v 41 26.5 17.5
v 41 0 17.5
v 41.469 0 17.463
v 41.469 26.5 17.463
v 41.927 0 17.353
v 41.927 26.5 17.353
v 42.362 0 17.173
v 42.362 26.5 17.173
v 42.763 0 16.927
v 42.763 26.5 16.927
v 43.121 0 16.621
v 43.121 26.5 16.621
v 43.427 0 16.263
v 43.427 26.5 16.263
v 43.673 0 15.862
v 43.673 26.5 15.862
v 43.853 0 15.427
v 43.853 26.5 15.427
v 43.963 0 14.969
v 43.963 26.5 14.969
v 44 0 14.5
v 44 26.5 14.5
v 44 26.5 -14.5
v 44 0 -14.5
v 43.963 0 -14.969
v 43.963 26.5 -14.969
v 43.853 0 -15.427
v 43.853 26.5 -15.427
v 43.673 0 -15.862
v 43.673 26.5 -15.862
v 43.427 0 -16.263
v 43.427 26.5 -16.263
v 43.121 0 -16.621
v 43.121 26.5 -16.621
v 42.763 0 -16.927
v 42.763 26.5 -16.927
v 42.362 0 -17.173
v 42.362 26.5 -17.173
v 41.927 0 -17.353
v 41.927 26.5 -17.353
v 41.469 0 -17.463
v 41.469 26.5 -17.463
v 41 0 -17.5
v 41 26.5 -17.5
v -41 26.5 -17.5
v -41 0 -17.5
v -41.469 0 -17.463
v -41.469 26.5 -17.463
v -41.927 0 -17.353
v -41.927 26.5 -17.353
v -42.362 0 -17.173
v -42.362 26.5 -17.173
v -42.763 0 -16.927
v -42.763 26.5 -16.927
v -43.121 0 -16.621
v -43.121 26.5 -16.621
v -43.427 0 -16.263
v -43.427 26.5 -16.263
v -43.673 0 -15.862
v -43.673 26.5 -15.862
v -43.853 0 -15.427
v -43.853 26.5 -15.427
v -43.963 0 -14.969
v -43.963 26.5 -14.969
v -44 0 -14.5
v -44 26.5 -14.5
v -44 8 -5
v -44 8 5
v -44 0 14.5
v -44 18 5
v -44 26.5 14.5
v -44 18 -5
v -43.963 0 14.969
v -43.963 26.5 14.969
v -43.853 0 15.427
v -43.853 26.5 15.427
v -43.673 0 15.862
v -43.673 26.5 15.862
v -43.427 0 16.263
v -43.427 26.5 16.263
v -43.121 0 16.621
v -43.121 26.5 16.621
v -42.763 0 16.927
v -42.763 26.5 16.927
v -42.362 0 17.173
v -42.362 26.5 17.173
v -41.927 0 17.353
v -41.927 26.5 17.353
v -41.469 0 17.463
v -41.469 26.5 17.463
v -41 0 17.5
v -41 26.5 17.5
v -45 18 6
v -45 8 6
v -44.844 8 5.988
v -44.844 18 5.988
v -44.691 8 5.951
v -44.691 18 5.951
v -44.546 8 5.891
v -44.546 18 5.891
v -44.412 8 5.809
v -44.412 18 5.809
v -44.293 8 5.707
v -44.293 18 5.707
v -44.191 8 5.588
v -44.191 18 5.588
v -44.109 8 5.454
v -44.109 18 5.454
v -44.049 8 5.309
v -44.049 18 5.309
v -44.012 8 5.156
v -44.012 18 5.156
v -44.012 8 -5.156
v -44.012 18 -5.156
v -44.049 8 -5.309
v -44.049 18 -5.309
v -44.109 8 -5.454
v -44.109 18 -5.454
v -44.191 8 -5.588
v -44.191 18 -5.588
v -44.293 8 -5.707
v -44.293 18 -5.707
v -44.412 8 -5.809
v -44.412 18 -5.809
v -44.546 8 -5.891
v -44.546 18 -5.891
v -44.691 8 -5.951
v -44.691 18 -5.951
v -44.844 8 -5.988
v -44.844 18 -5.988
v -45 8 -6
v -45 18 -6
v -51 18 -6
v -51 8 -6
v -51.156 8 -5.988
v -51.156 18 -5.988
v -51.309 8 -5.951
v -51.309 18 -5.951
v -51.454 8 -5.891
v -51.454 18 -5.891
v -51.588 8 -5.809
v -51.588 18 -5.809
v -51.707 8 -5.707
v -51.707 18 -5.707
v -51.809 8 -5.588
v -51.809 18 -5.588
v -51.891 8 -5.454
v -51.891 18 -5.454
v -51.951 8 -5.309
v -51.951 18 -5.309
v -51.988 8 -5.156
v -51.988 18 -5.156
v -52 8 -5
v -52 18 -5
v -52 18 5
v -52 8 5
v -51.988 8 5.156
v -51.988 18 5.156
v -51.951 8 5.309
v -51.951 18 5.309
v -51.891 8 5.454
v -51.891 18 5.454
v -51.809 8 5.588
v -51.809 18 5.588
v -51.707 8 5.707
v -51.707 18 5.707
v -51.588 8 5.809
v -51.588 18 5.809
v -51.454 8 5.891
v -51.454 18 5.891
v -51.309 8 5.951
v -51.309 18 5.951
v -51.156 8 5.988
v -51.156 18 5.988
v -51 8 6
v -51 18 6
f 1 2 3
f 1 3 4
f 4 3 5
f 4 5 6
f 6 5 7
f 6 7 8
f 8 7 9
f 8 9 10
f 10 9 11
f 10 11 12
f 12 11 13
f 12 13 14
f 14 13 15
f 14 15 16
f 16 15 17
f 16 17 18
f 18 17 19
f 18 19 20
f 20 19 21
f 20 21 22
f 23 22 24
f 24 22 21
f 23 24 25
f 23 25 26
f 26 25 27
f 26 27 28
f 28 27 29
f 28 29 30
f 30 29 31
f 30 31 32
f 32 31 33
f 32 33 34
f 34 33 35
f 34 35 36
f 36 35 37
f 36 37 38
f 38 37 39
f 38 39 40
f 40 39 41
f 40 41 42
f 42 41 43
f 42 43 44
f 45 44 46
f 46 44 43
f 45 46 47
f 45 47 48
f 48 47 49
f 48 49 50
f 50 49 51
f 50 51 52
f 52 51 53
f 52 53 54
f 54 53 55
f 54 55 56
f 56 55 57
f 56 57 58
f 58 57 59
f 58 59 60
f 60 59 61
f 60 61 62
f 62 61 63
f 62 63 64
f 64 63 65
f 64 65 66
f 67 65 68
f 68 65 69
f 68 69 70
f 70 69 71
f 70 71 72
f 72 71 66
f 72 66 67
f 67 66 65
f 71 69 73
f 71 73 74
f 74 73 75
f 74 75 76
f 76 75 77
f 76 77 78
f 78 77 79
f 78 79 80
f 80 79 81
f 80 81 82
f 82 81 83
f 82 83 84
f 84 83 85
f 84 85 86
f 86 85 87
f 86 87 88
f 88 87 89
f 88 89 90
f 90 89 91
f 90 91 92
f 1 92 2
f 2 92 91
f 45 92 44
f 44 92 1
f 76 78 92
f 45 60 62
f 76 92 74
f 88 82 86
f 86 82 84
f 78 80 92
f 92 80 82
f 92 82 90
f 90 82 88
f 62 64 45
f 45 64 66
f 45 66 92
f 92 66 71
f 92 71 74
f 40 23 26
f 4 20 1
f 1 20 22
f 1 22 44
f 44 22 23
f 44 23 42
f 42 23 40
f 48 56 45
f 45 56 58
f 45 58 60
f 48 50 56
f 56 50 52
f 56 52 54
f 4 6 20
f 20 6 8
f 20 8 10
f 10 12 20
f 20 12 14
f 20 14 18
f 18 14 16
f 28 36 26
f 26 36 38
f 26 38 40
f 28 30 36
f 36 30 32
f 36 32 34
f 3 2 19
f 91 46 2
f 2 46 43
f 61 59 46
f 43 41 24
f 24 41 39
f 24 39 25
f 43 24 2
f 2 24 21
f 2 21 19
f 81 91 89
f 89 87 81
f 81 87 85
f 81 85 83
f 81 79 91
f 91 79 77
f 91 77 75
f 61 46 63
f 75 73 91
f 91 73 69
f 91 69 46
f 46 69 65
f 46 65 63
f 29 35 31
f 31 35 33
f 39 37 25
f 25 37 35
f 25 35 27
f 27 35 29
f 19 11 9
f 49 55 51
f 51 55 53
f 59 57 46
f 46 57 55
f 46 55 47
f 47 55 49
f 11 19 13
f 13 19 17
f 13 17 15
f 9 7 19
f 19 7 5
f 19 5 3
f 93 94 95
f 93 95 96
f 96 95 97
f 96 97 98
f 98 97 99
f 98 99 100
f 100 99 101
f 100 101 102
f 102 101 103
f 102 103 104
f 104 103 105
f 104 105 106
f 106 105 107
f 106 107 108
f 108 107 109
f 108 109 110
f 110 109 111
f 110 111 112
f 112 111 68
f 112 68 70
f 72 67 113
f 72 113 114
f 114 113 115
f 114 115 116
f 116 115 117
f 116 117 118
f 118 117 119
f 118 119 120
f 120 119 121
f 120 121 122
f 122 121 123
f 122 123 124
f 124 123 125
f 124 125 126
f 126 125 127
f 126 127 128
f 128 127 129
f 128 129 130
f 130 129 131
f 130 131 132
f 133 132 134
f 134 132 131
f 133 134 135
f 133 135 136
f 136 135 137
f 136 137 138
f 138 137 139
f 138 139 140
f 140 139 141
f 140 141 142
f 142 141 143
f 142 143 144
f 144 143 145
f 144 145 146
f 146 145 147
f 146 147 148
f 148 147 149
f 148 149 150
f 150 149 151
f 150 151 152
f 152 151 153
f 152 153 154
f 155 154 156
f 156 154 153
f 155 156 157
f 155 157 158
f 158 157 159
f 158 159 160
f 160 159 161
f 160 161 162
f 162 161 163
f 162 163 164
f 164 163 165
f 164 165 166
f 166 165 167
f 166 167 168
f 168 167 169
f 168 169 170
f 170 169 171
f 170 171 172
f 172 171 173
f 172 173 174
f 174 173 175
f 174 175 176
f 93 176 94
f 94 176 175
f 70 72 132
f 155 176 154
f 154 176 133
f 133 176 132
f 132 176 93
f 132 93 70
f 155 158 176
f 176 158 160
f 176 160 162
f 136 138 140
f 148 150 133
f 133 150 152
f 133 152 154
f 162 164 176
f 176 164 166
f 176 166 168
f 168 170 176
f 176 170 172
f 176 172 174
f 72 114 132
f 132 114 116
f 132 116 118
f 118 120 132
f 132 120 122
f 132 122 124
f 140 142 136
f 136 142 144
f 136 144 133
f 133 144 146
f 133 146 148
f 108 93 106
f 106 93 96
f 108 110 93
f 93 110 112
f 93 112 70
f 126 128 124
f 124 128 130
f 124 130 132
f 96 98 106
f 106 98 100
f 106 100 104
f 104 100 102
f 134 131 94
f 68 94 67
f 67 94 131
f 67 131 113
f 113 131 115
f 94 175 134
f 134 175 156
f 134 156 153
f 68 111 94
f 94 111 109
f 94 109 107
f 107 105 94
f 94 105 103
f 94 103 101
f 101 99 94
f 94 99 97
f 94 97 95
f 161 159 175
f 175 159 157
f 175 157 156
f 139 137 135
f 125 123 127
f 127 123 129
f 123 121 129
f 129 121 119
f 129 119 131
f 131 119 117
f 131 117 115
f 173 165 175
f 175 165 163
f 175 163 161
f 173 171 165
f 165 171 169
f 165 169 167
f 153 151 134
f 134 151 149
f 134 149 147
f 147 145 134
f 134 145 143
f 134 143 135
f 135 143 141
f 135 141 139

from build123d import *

# Parameters (mm, degrees)
CELL_PACK_DEPTH = 26.5
CONNECTOR_START = 8
CONNECTOR_DEPTH = 10


with BuildPart() as part:
    # SK_1 → Cell_Pack (new body)
    with BuildSketch(Plane(origin=(0, 0, 0), x_dir=(1, 0, 0), z_dir=(0, 1, 0))):
        with BuildLine():
            Line((-41, -17.5), (41, -17.5))
            ThreePointArc((41, -17.5), (43.121320344, -16.621320344), (44, -14.5))
            Line((44, -14.5), (44, 14.5))
            ThreePointArc((44, 14.5), (43.121320344, 16.621320344), (41, 17.5))
            Line((41, 17.5), (-41, 17.5))
            ThreePointArc((-41, 17.5), (-43.121320344, 16.621320344), (-44, 14.5))
            Line((-44, 14.5), (-44, -14.5))
            ThreePointArc((-44, -14.5), (-43.121320344, -16.621320344), (-41, -17.5))
        make_face()
    extrude(amount=CELL_PACK_DEPTH)

    # SK_2 → Connector (add)
    with BuildSketch(Plane(origin=(0, 0, 0), x_dir=(1, 0, 0), z_dir=(0, 1, 0)).offset(CONNECTOR_START)):
        with BuildLine():
            Line((-51, -6), (-45, -6))
            ThreePointArc((-45, -6), (-44.292893219, -5.707106781), (-44, -5))
            Line((-44, -5), (-44, 5))
            ThreePointArc((-44, 5), (-44.292893219, 5.707106781), (-45, 6))
            Line((-45, 6), (-51, 6))
            ThreePointArc((-51, 6), (-51.707106781, 5.707106781), (-52, 5))
            Line((-52, 5), (-52, -5))
            ThreePointArc((-52, -5), (-51.707106781, -5.707106781), (-51, -6))
        make_face()
    extrude(amount=CONNECTOR_DEPTH)


solid = part.part
